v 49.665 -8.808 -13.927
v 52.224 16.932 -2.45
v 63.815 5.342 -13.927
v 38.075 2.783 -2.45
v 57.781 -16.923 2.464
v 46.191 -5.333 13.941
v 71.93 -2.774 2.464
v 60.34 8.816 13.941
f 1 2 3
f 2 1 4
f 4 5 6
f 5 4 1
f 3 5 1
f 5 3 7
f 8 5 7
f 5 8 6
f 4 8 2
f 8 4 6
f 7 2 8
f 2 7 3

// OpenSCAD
module subdivided_cube(size=1, center=false, dim=5) {
    // Standardize size to a 3-element vector [x, y, z]
    s = is_list(size) ? size : [size, size, size];
    
    // Calculate the translation offset if center is true
    offset = center ? [-s[0]/2, -s[1]/2, -s[2]/2] : [0, 0, 0];
    
    step_x = s[0] / dim;
    step_y = s[1] / dim;
    step_z = s[2] / dim;

    translate(offset)
    for (x = [0 : step_x : s[0] - 0.001]) {
        for (y = [0 : step_y : s[1] - 0.001]) {
            for (z = [0 : step_z : s[2] - 0.001]) {
                // 0.01 overlap ensures a single manifold object
                translate([x, y, z]) 
                    cube([step_x + 0.01, step_y + 0.01, step_z + 0.01]);
            }
        }
    }
}

union(){
    for(i = [0:360:360]){
    rotate([0,0,i])translate([30+25,0,0])rotate([35,0,45])subdivided_cube(20,center=true);
    }

}
